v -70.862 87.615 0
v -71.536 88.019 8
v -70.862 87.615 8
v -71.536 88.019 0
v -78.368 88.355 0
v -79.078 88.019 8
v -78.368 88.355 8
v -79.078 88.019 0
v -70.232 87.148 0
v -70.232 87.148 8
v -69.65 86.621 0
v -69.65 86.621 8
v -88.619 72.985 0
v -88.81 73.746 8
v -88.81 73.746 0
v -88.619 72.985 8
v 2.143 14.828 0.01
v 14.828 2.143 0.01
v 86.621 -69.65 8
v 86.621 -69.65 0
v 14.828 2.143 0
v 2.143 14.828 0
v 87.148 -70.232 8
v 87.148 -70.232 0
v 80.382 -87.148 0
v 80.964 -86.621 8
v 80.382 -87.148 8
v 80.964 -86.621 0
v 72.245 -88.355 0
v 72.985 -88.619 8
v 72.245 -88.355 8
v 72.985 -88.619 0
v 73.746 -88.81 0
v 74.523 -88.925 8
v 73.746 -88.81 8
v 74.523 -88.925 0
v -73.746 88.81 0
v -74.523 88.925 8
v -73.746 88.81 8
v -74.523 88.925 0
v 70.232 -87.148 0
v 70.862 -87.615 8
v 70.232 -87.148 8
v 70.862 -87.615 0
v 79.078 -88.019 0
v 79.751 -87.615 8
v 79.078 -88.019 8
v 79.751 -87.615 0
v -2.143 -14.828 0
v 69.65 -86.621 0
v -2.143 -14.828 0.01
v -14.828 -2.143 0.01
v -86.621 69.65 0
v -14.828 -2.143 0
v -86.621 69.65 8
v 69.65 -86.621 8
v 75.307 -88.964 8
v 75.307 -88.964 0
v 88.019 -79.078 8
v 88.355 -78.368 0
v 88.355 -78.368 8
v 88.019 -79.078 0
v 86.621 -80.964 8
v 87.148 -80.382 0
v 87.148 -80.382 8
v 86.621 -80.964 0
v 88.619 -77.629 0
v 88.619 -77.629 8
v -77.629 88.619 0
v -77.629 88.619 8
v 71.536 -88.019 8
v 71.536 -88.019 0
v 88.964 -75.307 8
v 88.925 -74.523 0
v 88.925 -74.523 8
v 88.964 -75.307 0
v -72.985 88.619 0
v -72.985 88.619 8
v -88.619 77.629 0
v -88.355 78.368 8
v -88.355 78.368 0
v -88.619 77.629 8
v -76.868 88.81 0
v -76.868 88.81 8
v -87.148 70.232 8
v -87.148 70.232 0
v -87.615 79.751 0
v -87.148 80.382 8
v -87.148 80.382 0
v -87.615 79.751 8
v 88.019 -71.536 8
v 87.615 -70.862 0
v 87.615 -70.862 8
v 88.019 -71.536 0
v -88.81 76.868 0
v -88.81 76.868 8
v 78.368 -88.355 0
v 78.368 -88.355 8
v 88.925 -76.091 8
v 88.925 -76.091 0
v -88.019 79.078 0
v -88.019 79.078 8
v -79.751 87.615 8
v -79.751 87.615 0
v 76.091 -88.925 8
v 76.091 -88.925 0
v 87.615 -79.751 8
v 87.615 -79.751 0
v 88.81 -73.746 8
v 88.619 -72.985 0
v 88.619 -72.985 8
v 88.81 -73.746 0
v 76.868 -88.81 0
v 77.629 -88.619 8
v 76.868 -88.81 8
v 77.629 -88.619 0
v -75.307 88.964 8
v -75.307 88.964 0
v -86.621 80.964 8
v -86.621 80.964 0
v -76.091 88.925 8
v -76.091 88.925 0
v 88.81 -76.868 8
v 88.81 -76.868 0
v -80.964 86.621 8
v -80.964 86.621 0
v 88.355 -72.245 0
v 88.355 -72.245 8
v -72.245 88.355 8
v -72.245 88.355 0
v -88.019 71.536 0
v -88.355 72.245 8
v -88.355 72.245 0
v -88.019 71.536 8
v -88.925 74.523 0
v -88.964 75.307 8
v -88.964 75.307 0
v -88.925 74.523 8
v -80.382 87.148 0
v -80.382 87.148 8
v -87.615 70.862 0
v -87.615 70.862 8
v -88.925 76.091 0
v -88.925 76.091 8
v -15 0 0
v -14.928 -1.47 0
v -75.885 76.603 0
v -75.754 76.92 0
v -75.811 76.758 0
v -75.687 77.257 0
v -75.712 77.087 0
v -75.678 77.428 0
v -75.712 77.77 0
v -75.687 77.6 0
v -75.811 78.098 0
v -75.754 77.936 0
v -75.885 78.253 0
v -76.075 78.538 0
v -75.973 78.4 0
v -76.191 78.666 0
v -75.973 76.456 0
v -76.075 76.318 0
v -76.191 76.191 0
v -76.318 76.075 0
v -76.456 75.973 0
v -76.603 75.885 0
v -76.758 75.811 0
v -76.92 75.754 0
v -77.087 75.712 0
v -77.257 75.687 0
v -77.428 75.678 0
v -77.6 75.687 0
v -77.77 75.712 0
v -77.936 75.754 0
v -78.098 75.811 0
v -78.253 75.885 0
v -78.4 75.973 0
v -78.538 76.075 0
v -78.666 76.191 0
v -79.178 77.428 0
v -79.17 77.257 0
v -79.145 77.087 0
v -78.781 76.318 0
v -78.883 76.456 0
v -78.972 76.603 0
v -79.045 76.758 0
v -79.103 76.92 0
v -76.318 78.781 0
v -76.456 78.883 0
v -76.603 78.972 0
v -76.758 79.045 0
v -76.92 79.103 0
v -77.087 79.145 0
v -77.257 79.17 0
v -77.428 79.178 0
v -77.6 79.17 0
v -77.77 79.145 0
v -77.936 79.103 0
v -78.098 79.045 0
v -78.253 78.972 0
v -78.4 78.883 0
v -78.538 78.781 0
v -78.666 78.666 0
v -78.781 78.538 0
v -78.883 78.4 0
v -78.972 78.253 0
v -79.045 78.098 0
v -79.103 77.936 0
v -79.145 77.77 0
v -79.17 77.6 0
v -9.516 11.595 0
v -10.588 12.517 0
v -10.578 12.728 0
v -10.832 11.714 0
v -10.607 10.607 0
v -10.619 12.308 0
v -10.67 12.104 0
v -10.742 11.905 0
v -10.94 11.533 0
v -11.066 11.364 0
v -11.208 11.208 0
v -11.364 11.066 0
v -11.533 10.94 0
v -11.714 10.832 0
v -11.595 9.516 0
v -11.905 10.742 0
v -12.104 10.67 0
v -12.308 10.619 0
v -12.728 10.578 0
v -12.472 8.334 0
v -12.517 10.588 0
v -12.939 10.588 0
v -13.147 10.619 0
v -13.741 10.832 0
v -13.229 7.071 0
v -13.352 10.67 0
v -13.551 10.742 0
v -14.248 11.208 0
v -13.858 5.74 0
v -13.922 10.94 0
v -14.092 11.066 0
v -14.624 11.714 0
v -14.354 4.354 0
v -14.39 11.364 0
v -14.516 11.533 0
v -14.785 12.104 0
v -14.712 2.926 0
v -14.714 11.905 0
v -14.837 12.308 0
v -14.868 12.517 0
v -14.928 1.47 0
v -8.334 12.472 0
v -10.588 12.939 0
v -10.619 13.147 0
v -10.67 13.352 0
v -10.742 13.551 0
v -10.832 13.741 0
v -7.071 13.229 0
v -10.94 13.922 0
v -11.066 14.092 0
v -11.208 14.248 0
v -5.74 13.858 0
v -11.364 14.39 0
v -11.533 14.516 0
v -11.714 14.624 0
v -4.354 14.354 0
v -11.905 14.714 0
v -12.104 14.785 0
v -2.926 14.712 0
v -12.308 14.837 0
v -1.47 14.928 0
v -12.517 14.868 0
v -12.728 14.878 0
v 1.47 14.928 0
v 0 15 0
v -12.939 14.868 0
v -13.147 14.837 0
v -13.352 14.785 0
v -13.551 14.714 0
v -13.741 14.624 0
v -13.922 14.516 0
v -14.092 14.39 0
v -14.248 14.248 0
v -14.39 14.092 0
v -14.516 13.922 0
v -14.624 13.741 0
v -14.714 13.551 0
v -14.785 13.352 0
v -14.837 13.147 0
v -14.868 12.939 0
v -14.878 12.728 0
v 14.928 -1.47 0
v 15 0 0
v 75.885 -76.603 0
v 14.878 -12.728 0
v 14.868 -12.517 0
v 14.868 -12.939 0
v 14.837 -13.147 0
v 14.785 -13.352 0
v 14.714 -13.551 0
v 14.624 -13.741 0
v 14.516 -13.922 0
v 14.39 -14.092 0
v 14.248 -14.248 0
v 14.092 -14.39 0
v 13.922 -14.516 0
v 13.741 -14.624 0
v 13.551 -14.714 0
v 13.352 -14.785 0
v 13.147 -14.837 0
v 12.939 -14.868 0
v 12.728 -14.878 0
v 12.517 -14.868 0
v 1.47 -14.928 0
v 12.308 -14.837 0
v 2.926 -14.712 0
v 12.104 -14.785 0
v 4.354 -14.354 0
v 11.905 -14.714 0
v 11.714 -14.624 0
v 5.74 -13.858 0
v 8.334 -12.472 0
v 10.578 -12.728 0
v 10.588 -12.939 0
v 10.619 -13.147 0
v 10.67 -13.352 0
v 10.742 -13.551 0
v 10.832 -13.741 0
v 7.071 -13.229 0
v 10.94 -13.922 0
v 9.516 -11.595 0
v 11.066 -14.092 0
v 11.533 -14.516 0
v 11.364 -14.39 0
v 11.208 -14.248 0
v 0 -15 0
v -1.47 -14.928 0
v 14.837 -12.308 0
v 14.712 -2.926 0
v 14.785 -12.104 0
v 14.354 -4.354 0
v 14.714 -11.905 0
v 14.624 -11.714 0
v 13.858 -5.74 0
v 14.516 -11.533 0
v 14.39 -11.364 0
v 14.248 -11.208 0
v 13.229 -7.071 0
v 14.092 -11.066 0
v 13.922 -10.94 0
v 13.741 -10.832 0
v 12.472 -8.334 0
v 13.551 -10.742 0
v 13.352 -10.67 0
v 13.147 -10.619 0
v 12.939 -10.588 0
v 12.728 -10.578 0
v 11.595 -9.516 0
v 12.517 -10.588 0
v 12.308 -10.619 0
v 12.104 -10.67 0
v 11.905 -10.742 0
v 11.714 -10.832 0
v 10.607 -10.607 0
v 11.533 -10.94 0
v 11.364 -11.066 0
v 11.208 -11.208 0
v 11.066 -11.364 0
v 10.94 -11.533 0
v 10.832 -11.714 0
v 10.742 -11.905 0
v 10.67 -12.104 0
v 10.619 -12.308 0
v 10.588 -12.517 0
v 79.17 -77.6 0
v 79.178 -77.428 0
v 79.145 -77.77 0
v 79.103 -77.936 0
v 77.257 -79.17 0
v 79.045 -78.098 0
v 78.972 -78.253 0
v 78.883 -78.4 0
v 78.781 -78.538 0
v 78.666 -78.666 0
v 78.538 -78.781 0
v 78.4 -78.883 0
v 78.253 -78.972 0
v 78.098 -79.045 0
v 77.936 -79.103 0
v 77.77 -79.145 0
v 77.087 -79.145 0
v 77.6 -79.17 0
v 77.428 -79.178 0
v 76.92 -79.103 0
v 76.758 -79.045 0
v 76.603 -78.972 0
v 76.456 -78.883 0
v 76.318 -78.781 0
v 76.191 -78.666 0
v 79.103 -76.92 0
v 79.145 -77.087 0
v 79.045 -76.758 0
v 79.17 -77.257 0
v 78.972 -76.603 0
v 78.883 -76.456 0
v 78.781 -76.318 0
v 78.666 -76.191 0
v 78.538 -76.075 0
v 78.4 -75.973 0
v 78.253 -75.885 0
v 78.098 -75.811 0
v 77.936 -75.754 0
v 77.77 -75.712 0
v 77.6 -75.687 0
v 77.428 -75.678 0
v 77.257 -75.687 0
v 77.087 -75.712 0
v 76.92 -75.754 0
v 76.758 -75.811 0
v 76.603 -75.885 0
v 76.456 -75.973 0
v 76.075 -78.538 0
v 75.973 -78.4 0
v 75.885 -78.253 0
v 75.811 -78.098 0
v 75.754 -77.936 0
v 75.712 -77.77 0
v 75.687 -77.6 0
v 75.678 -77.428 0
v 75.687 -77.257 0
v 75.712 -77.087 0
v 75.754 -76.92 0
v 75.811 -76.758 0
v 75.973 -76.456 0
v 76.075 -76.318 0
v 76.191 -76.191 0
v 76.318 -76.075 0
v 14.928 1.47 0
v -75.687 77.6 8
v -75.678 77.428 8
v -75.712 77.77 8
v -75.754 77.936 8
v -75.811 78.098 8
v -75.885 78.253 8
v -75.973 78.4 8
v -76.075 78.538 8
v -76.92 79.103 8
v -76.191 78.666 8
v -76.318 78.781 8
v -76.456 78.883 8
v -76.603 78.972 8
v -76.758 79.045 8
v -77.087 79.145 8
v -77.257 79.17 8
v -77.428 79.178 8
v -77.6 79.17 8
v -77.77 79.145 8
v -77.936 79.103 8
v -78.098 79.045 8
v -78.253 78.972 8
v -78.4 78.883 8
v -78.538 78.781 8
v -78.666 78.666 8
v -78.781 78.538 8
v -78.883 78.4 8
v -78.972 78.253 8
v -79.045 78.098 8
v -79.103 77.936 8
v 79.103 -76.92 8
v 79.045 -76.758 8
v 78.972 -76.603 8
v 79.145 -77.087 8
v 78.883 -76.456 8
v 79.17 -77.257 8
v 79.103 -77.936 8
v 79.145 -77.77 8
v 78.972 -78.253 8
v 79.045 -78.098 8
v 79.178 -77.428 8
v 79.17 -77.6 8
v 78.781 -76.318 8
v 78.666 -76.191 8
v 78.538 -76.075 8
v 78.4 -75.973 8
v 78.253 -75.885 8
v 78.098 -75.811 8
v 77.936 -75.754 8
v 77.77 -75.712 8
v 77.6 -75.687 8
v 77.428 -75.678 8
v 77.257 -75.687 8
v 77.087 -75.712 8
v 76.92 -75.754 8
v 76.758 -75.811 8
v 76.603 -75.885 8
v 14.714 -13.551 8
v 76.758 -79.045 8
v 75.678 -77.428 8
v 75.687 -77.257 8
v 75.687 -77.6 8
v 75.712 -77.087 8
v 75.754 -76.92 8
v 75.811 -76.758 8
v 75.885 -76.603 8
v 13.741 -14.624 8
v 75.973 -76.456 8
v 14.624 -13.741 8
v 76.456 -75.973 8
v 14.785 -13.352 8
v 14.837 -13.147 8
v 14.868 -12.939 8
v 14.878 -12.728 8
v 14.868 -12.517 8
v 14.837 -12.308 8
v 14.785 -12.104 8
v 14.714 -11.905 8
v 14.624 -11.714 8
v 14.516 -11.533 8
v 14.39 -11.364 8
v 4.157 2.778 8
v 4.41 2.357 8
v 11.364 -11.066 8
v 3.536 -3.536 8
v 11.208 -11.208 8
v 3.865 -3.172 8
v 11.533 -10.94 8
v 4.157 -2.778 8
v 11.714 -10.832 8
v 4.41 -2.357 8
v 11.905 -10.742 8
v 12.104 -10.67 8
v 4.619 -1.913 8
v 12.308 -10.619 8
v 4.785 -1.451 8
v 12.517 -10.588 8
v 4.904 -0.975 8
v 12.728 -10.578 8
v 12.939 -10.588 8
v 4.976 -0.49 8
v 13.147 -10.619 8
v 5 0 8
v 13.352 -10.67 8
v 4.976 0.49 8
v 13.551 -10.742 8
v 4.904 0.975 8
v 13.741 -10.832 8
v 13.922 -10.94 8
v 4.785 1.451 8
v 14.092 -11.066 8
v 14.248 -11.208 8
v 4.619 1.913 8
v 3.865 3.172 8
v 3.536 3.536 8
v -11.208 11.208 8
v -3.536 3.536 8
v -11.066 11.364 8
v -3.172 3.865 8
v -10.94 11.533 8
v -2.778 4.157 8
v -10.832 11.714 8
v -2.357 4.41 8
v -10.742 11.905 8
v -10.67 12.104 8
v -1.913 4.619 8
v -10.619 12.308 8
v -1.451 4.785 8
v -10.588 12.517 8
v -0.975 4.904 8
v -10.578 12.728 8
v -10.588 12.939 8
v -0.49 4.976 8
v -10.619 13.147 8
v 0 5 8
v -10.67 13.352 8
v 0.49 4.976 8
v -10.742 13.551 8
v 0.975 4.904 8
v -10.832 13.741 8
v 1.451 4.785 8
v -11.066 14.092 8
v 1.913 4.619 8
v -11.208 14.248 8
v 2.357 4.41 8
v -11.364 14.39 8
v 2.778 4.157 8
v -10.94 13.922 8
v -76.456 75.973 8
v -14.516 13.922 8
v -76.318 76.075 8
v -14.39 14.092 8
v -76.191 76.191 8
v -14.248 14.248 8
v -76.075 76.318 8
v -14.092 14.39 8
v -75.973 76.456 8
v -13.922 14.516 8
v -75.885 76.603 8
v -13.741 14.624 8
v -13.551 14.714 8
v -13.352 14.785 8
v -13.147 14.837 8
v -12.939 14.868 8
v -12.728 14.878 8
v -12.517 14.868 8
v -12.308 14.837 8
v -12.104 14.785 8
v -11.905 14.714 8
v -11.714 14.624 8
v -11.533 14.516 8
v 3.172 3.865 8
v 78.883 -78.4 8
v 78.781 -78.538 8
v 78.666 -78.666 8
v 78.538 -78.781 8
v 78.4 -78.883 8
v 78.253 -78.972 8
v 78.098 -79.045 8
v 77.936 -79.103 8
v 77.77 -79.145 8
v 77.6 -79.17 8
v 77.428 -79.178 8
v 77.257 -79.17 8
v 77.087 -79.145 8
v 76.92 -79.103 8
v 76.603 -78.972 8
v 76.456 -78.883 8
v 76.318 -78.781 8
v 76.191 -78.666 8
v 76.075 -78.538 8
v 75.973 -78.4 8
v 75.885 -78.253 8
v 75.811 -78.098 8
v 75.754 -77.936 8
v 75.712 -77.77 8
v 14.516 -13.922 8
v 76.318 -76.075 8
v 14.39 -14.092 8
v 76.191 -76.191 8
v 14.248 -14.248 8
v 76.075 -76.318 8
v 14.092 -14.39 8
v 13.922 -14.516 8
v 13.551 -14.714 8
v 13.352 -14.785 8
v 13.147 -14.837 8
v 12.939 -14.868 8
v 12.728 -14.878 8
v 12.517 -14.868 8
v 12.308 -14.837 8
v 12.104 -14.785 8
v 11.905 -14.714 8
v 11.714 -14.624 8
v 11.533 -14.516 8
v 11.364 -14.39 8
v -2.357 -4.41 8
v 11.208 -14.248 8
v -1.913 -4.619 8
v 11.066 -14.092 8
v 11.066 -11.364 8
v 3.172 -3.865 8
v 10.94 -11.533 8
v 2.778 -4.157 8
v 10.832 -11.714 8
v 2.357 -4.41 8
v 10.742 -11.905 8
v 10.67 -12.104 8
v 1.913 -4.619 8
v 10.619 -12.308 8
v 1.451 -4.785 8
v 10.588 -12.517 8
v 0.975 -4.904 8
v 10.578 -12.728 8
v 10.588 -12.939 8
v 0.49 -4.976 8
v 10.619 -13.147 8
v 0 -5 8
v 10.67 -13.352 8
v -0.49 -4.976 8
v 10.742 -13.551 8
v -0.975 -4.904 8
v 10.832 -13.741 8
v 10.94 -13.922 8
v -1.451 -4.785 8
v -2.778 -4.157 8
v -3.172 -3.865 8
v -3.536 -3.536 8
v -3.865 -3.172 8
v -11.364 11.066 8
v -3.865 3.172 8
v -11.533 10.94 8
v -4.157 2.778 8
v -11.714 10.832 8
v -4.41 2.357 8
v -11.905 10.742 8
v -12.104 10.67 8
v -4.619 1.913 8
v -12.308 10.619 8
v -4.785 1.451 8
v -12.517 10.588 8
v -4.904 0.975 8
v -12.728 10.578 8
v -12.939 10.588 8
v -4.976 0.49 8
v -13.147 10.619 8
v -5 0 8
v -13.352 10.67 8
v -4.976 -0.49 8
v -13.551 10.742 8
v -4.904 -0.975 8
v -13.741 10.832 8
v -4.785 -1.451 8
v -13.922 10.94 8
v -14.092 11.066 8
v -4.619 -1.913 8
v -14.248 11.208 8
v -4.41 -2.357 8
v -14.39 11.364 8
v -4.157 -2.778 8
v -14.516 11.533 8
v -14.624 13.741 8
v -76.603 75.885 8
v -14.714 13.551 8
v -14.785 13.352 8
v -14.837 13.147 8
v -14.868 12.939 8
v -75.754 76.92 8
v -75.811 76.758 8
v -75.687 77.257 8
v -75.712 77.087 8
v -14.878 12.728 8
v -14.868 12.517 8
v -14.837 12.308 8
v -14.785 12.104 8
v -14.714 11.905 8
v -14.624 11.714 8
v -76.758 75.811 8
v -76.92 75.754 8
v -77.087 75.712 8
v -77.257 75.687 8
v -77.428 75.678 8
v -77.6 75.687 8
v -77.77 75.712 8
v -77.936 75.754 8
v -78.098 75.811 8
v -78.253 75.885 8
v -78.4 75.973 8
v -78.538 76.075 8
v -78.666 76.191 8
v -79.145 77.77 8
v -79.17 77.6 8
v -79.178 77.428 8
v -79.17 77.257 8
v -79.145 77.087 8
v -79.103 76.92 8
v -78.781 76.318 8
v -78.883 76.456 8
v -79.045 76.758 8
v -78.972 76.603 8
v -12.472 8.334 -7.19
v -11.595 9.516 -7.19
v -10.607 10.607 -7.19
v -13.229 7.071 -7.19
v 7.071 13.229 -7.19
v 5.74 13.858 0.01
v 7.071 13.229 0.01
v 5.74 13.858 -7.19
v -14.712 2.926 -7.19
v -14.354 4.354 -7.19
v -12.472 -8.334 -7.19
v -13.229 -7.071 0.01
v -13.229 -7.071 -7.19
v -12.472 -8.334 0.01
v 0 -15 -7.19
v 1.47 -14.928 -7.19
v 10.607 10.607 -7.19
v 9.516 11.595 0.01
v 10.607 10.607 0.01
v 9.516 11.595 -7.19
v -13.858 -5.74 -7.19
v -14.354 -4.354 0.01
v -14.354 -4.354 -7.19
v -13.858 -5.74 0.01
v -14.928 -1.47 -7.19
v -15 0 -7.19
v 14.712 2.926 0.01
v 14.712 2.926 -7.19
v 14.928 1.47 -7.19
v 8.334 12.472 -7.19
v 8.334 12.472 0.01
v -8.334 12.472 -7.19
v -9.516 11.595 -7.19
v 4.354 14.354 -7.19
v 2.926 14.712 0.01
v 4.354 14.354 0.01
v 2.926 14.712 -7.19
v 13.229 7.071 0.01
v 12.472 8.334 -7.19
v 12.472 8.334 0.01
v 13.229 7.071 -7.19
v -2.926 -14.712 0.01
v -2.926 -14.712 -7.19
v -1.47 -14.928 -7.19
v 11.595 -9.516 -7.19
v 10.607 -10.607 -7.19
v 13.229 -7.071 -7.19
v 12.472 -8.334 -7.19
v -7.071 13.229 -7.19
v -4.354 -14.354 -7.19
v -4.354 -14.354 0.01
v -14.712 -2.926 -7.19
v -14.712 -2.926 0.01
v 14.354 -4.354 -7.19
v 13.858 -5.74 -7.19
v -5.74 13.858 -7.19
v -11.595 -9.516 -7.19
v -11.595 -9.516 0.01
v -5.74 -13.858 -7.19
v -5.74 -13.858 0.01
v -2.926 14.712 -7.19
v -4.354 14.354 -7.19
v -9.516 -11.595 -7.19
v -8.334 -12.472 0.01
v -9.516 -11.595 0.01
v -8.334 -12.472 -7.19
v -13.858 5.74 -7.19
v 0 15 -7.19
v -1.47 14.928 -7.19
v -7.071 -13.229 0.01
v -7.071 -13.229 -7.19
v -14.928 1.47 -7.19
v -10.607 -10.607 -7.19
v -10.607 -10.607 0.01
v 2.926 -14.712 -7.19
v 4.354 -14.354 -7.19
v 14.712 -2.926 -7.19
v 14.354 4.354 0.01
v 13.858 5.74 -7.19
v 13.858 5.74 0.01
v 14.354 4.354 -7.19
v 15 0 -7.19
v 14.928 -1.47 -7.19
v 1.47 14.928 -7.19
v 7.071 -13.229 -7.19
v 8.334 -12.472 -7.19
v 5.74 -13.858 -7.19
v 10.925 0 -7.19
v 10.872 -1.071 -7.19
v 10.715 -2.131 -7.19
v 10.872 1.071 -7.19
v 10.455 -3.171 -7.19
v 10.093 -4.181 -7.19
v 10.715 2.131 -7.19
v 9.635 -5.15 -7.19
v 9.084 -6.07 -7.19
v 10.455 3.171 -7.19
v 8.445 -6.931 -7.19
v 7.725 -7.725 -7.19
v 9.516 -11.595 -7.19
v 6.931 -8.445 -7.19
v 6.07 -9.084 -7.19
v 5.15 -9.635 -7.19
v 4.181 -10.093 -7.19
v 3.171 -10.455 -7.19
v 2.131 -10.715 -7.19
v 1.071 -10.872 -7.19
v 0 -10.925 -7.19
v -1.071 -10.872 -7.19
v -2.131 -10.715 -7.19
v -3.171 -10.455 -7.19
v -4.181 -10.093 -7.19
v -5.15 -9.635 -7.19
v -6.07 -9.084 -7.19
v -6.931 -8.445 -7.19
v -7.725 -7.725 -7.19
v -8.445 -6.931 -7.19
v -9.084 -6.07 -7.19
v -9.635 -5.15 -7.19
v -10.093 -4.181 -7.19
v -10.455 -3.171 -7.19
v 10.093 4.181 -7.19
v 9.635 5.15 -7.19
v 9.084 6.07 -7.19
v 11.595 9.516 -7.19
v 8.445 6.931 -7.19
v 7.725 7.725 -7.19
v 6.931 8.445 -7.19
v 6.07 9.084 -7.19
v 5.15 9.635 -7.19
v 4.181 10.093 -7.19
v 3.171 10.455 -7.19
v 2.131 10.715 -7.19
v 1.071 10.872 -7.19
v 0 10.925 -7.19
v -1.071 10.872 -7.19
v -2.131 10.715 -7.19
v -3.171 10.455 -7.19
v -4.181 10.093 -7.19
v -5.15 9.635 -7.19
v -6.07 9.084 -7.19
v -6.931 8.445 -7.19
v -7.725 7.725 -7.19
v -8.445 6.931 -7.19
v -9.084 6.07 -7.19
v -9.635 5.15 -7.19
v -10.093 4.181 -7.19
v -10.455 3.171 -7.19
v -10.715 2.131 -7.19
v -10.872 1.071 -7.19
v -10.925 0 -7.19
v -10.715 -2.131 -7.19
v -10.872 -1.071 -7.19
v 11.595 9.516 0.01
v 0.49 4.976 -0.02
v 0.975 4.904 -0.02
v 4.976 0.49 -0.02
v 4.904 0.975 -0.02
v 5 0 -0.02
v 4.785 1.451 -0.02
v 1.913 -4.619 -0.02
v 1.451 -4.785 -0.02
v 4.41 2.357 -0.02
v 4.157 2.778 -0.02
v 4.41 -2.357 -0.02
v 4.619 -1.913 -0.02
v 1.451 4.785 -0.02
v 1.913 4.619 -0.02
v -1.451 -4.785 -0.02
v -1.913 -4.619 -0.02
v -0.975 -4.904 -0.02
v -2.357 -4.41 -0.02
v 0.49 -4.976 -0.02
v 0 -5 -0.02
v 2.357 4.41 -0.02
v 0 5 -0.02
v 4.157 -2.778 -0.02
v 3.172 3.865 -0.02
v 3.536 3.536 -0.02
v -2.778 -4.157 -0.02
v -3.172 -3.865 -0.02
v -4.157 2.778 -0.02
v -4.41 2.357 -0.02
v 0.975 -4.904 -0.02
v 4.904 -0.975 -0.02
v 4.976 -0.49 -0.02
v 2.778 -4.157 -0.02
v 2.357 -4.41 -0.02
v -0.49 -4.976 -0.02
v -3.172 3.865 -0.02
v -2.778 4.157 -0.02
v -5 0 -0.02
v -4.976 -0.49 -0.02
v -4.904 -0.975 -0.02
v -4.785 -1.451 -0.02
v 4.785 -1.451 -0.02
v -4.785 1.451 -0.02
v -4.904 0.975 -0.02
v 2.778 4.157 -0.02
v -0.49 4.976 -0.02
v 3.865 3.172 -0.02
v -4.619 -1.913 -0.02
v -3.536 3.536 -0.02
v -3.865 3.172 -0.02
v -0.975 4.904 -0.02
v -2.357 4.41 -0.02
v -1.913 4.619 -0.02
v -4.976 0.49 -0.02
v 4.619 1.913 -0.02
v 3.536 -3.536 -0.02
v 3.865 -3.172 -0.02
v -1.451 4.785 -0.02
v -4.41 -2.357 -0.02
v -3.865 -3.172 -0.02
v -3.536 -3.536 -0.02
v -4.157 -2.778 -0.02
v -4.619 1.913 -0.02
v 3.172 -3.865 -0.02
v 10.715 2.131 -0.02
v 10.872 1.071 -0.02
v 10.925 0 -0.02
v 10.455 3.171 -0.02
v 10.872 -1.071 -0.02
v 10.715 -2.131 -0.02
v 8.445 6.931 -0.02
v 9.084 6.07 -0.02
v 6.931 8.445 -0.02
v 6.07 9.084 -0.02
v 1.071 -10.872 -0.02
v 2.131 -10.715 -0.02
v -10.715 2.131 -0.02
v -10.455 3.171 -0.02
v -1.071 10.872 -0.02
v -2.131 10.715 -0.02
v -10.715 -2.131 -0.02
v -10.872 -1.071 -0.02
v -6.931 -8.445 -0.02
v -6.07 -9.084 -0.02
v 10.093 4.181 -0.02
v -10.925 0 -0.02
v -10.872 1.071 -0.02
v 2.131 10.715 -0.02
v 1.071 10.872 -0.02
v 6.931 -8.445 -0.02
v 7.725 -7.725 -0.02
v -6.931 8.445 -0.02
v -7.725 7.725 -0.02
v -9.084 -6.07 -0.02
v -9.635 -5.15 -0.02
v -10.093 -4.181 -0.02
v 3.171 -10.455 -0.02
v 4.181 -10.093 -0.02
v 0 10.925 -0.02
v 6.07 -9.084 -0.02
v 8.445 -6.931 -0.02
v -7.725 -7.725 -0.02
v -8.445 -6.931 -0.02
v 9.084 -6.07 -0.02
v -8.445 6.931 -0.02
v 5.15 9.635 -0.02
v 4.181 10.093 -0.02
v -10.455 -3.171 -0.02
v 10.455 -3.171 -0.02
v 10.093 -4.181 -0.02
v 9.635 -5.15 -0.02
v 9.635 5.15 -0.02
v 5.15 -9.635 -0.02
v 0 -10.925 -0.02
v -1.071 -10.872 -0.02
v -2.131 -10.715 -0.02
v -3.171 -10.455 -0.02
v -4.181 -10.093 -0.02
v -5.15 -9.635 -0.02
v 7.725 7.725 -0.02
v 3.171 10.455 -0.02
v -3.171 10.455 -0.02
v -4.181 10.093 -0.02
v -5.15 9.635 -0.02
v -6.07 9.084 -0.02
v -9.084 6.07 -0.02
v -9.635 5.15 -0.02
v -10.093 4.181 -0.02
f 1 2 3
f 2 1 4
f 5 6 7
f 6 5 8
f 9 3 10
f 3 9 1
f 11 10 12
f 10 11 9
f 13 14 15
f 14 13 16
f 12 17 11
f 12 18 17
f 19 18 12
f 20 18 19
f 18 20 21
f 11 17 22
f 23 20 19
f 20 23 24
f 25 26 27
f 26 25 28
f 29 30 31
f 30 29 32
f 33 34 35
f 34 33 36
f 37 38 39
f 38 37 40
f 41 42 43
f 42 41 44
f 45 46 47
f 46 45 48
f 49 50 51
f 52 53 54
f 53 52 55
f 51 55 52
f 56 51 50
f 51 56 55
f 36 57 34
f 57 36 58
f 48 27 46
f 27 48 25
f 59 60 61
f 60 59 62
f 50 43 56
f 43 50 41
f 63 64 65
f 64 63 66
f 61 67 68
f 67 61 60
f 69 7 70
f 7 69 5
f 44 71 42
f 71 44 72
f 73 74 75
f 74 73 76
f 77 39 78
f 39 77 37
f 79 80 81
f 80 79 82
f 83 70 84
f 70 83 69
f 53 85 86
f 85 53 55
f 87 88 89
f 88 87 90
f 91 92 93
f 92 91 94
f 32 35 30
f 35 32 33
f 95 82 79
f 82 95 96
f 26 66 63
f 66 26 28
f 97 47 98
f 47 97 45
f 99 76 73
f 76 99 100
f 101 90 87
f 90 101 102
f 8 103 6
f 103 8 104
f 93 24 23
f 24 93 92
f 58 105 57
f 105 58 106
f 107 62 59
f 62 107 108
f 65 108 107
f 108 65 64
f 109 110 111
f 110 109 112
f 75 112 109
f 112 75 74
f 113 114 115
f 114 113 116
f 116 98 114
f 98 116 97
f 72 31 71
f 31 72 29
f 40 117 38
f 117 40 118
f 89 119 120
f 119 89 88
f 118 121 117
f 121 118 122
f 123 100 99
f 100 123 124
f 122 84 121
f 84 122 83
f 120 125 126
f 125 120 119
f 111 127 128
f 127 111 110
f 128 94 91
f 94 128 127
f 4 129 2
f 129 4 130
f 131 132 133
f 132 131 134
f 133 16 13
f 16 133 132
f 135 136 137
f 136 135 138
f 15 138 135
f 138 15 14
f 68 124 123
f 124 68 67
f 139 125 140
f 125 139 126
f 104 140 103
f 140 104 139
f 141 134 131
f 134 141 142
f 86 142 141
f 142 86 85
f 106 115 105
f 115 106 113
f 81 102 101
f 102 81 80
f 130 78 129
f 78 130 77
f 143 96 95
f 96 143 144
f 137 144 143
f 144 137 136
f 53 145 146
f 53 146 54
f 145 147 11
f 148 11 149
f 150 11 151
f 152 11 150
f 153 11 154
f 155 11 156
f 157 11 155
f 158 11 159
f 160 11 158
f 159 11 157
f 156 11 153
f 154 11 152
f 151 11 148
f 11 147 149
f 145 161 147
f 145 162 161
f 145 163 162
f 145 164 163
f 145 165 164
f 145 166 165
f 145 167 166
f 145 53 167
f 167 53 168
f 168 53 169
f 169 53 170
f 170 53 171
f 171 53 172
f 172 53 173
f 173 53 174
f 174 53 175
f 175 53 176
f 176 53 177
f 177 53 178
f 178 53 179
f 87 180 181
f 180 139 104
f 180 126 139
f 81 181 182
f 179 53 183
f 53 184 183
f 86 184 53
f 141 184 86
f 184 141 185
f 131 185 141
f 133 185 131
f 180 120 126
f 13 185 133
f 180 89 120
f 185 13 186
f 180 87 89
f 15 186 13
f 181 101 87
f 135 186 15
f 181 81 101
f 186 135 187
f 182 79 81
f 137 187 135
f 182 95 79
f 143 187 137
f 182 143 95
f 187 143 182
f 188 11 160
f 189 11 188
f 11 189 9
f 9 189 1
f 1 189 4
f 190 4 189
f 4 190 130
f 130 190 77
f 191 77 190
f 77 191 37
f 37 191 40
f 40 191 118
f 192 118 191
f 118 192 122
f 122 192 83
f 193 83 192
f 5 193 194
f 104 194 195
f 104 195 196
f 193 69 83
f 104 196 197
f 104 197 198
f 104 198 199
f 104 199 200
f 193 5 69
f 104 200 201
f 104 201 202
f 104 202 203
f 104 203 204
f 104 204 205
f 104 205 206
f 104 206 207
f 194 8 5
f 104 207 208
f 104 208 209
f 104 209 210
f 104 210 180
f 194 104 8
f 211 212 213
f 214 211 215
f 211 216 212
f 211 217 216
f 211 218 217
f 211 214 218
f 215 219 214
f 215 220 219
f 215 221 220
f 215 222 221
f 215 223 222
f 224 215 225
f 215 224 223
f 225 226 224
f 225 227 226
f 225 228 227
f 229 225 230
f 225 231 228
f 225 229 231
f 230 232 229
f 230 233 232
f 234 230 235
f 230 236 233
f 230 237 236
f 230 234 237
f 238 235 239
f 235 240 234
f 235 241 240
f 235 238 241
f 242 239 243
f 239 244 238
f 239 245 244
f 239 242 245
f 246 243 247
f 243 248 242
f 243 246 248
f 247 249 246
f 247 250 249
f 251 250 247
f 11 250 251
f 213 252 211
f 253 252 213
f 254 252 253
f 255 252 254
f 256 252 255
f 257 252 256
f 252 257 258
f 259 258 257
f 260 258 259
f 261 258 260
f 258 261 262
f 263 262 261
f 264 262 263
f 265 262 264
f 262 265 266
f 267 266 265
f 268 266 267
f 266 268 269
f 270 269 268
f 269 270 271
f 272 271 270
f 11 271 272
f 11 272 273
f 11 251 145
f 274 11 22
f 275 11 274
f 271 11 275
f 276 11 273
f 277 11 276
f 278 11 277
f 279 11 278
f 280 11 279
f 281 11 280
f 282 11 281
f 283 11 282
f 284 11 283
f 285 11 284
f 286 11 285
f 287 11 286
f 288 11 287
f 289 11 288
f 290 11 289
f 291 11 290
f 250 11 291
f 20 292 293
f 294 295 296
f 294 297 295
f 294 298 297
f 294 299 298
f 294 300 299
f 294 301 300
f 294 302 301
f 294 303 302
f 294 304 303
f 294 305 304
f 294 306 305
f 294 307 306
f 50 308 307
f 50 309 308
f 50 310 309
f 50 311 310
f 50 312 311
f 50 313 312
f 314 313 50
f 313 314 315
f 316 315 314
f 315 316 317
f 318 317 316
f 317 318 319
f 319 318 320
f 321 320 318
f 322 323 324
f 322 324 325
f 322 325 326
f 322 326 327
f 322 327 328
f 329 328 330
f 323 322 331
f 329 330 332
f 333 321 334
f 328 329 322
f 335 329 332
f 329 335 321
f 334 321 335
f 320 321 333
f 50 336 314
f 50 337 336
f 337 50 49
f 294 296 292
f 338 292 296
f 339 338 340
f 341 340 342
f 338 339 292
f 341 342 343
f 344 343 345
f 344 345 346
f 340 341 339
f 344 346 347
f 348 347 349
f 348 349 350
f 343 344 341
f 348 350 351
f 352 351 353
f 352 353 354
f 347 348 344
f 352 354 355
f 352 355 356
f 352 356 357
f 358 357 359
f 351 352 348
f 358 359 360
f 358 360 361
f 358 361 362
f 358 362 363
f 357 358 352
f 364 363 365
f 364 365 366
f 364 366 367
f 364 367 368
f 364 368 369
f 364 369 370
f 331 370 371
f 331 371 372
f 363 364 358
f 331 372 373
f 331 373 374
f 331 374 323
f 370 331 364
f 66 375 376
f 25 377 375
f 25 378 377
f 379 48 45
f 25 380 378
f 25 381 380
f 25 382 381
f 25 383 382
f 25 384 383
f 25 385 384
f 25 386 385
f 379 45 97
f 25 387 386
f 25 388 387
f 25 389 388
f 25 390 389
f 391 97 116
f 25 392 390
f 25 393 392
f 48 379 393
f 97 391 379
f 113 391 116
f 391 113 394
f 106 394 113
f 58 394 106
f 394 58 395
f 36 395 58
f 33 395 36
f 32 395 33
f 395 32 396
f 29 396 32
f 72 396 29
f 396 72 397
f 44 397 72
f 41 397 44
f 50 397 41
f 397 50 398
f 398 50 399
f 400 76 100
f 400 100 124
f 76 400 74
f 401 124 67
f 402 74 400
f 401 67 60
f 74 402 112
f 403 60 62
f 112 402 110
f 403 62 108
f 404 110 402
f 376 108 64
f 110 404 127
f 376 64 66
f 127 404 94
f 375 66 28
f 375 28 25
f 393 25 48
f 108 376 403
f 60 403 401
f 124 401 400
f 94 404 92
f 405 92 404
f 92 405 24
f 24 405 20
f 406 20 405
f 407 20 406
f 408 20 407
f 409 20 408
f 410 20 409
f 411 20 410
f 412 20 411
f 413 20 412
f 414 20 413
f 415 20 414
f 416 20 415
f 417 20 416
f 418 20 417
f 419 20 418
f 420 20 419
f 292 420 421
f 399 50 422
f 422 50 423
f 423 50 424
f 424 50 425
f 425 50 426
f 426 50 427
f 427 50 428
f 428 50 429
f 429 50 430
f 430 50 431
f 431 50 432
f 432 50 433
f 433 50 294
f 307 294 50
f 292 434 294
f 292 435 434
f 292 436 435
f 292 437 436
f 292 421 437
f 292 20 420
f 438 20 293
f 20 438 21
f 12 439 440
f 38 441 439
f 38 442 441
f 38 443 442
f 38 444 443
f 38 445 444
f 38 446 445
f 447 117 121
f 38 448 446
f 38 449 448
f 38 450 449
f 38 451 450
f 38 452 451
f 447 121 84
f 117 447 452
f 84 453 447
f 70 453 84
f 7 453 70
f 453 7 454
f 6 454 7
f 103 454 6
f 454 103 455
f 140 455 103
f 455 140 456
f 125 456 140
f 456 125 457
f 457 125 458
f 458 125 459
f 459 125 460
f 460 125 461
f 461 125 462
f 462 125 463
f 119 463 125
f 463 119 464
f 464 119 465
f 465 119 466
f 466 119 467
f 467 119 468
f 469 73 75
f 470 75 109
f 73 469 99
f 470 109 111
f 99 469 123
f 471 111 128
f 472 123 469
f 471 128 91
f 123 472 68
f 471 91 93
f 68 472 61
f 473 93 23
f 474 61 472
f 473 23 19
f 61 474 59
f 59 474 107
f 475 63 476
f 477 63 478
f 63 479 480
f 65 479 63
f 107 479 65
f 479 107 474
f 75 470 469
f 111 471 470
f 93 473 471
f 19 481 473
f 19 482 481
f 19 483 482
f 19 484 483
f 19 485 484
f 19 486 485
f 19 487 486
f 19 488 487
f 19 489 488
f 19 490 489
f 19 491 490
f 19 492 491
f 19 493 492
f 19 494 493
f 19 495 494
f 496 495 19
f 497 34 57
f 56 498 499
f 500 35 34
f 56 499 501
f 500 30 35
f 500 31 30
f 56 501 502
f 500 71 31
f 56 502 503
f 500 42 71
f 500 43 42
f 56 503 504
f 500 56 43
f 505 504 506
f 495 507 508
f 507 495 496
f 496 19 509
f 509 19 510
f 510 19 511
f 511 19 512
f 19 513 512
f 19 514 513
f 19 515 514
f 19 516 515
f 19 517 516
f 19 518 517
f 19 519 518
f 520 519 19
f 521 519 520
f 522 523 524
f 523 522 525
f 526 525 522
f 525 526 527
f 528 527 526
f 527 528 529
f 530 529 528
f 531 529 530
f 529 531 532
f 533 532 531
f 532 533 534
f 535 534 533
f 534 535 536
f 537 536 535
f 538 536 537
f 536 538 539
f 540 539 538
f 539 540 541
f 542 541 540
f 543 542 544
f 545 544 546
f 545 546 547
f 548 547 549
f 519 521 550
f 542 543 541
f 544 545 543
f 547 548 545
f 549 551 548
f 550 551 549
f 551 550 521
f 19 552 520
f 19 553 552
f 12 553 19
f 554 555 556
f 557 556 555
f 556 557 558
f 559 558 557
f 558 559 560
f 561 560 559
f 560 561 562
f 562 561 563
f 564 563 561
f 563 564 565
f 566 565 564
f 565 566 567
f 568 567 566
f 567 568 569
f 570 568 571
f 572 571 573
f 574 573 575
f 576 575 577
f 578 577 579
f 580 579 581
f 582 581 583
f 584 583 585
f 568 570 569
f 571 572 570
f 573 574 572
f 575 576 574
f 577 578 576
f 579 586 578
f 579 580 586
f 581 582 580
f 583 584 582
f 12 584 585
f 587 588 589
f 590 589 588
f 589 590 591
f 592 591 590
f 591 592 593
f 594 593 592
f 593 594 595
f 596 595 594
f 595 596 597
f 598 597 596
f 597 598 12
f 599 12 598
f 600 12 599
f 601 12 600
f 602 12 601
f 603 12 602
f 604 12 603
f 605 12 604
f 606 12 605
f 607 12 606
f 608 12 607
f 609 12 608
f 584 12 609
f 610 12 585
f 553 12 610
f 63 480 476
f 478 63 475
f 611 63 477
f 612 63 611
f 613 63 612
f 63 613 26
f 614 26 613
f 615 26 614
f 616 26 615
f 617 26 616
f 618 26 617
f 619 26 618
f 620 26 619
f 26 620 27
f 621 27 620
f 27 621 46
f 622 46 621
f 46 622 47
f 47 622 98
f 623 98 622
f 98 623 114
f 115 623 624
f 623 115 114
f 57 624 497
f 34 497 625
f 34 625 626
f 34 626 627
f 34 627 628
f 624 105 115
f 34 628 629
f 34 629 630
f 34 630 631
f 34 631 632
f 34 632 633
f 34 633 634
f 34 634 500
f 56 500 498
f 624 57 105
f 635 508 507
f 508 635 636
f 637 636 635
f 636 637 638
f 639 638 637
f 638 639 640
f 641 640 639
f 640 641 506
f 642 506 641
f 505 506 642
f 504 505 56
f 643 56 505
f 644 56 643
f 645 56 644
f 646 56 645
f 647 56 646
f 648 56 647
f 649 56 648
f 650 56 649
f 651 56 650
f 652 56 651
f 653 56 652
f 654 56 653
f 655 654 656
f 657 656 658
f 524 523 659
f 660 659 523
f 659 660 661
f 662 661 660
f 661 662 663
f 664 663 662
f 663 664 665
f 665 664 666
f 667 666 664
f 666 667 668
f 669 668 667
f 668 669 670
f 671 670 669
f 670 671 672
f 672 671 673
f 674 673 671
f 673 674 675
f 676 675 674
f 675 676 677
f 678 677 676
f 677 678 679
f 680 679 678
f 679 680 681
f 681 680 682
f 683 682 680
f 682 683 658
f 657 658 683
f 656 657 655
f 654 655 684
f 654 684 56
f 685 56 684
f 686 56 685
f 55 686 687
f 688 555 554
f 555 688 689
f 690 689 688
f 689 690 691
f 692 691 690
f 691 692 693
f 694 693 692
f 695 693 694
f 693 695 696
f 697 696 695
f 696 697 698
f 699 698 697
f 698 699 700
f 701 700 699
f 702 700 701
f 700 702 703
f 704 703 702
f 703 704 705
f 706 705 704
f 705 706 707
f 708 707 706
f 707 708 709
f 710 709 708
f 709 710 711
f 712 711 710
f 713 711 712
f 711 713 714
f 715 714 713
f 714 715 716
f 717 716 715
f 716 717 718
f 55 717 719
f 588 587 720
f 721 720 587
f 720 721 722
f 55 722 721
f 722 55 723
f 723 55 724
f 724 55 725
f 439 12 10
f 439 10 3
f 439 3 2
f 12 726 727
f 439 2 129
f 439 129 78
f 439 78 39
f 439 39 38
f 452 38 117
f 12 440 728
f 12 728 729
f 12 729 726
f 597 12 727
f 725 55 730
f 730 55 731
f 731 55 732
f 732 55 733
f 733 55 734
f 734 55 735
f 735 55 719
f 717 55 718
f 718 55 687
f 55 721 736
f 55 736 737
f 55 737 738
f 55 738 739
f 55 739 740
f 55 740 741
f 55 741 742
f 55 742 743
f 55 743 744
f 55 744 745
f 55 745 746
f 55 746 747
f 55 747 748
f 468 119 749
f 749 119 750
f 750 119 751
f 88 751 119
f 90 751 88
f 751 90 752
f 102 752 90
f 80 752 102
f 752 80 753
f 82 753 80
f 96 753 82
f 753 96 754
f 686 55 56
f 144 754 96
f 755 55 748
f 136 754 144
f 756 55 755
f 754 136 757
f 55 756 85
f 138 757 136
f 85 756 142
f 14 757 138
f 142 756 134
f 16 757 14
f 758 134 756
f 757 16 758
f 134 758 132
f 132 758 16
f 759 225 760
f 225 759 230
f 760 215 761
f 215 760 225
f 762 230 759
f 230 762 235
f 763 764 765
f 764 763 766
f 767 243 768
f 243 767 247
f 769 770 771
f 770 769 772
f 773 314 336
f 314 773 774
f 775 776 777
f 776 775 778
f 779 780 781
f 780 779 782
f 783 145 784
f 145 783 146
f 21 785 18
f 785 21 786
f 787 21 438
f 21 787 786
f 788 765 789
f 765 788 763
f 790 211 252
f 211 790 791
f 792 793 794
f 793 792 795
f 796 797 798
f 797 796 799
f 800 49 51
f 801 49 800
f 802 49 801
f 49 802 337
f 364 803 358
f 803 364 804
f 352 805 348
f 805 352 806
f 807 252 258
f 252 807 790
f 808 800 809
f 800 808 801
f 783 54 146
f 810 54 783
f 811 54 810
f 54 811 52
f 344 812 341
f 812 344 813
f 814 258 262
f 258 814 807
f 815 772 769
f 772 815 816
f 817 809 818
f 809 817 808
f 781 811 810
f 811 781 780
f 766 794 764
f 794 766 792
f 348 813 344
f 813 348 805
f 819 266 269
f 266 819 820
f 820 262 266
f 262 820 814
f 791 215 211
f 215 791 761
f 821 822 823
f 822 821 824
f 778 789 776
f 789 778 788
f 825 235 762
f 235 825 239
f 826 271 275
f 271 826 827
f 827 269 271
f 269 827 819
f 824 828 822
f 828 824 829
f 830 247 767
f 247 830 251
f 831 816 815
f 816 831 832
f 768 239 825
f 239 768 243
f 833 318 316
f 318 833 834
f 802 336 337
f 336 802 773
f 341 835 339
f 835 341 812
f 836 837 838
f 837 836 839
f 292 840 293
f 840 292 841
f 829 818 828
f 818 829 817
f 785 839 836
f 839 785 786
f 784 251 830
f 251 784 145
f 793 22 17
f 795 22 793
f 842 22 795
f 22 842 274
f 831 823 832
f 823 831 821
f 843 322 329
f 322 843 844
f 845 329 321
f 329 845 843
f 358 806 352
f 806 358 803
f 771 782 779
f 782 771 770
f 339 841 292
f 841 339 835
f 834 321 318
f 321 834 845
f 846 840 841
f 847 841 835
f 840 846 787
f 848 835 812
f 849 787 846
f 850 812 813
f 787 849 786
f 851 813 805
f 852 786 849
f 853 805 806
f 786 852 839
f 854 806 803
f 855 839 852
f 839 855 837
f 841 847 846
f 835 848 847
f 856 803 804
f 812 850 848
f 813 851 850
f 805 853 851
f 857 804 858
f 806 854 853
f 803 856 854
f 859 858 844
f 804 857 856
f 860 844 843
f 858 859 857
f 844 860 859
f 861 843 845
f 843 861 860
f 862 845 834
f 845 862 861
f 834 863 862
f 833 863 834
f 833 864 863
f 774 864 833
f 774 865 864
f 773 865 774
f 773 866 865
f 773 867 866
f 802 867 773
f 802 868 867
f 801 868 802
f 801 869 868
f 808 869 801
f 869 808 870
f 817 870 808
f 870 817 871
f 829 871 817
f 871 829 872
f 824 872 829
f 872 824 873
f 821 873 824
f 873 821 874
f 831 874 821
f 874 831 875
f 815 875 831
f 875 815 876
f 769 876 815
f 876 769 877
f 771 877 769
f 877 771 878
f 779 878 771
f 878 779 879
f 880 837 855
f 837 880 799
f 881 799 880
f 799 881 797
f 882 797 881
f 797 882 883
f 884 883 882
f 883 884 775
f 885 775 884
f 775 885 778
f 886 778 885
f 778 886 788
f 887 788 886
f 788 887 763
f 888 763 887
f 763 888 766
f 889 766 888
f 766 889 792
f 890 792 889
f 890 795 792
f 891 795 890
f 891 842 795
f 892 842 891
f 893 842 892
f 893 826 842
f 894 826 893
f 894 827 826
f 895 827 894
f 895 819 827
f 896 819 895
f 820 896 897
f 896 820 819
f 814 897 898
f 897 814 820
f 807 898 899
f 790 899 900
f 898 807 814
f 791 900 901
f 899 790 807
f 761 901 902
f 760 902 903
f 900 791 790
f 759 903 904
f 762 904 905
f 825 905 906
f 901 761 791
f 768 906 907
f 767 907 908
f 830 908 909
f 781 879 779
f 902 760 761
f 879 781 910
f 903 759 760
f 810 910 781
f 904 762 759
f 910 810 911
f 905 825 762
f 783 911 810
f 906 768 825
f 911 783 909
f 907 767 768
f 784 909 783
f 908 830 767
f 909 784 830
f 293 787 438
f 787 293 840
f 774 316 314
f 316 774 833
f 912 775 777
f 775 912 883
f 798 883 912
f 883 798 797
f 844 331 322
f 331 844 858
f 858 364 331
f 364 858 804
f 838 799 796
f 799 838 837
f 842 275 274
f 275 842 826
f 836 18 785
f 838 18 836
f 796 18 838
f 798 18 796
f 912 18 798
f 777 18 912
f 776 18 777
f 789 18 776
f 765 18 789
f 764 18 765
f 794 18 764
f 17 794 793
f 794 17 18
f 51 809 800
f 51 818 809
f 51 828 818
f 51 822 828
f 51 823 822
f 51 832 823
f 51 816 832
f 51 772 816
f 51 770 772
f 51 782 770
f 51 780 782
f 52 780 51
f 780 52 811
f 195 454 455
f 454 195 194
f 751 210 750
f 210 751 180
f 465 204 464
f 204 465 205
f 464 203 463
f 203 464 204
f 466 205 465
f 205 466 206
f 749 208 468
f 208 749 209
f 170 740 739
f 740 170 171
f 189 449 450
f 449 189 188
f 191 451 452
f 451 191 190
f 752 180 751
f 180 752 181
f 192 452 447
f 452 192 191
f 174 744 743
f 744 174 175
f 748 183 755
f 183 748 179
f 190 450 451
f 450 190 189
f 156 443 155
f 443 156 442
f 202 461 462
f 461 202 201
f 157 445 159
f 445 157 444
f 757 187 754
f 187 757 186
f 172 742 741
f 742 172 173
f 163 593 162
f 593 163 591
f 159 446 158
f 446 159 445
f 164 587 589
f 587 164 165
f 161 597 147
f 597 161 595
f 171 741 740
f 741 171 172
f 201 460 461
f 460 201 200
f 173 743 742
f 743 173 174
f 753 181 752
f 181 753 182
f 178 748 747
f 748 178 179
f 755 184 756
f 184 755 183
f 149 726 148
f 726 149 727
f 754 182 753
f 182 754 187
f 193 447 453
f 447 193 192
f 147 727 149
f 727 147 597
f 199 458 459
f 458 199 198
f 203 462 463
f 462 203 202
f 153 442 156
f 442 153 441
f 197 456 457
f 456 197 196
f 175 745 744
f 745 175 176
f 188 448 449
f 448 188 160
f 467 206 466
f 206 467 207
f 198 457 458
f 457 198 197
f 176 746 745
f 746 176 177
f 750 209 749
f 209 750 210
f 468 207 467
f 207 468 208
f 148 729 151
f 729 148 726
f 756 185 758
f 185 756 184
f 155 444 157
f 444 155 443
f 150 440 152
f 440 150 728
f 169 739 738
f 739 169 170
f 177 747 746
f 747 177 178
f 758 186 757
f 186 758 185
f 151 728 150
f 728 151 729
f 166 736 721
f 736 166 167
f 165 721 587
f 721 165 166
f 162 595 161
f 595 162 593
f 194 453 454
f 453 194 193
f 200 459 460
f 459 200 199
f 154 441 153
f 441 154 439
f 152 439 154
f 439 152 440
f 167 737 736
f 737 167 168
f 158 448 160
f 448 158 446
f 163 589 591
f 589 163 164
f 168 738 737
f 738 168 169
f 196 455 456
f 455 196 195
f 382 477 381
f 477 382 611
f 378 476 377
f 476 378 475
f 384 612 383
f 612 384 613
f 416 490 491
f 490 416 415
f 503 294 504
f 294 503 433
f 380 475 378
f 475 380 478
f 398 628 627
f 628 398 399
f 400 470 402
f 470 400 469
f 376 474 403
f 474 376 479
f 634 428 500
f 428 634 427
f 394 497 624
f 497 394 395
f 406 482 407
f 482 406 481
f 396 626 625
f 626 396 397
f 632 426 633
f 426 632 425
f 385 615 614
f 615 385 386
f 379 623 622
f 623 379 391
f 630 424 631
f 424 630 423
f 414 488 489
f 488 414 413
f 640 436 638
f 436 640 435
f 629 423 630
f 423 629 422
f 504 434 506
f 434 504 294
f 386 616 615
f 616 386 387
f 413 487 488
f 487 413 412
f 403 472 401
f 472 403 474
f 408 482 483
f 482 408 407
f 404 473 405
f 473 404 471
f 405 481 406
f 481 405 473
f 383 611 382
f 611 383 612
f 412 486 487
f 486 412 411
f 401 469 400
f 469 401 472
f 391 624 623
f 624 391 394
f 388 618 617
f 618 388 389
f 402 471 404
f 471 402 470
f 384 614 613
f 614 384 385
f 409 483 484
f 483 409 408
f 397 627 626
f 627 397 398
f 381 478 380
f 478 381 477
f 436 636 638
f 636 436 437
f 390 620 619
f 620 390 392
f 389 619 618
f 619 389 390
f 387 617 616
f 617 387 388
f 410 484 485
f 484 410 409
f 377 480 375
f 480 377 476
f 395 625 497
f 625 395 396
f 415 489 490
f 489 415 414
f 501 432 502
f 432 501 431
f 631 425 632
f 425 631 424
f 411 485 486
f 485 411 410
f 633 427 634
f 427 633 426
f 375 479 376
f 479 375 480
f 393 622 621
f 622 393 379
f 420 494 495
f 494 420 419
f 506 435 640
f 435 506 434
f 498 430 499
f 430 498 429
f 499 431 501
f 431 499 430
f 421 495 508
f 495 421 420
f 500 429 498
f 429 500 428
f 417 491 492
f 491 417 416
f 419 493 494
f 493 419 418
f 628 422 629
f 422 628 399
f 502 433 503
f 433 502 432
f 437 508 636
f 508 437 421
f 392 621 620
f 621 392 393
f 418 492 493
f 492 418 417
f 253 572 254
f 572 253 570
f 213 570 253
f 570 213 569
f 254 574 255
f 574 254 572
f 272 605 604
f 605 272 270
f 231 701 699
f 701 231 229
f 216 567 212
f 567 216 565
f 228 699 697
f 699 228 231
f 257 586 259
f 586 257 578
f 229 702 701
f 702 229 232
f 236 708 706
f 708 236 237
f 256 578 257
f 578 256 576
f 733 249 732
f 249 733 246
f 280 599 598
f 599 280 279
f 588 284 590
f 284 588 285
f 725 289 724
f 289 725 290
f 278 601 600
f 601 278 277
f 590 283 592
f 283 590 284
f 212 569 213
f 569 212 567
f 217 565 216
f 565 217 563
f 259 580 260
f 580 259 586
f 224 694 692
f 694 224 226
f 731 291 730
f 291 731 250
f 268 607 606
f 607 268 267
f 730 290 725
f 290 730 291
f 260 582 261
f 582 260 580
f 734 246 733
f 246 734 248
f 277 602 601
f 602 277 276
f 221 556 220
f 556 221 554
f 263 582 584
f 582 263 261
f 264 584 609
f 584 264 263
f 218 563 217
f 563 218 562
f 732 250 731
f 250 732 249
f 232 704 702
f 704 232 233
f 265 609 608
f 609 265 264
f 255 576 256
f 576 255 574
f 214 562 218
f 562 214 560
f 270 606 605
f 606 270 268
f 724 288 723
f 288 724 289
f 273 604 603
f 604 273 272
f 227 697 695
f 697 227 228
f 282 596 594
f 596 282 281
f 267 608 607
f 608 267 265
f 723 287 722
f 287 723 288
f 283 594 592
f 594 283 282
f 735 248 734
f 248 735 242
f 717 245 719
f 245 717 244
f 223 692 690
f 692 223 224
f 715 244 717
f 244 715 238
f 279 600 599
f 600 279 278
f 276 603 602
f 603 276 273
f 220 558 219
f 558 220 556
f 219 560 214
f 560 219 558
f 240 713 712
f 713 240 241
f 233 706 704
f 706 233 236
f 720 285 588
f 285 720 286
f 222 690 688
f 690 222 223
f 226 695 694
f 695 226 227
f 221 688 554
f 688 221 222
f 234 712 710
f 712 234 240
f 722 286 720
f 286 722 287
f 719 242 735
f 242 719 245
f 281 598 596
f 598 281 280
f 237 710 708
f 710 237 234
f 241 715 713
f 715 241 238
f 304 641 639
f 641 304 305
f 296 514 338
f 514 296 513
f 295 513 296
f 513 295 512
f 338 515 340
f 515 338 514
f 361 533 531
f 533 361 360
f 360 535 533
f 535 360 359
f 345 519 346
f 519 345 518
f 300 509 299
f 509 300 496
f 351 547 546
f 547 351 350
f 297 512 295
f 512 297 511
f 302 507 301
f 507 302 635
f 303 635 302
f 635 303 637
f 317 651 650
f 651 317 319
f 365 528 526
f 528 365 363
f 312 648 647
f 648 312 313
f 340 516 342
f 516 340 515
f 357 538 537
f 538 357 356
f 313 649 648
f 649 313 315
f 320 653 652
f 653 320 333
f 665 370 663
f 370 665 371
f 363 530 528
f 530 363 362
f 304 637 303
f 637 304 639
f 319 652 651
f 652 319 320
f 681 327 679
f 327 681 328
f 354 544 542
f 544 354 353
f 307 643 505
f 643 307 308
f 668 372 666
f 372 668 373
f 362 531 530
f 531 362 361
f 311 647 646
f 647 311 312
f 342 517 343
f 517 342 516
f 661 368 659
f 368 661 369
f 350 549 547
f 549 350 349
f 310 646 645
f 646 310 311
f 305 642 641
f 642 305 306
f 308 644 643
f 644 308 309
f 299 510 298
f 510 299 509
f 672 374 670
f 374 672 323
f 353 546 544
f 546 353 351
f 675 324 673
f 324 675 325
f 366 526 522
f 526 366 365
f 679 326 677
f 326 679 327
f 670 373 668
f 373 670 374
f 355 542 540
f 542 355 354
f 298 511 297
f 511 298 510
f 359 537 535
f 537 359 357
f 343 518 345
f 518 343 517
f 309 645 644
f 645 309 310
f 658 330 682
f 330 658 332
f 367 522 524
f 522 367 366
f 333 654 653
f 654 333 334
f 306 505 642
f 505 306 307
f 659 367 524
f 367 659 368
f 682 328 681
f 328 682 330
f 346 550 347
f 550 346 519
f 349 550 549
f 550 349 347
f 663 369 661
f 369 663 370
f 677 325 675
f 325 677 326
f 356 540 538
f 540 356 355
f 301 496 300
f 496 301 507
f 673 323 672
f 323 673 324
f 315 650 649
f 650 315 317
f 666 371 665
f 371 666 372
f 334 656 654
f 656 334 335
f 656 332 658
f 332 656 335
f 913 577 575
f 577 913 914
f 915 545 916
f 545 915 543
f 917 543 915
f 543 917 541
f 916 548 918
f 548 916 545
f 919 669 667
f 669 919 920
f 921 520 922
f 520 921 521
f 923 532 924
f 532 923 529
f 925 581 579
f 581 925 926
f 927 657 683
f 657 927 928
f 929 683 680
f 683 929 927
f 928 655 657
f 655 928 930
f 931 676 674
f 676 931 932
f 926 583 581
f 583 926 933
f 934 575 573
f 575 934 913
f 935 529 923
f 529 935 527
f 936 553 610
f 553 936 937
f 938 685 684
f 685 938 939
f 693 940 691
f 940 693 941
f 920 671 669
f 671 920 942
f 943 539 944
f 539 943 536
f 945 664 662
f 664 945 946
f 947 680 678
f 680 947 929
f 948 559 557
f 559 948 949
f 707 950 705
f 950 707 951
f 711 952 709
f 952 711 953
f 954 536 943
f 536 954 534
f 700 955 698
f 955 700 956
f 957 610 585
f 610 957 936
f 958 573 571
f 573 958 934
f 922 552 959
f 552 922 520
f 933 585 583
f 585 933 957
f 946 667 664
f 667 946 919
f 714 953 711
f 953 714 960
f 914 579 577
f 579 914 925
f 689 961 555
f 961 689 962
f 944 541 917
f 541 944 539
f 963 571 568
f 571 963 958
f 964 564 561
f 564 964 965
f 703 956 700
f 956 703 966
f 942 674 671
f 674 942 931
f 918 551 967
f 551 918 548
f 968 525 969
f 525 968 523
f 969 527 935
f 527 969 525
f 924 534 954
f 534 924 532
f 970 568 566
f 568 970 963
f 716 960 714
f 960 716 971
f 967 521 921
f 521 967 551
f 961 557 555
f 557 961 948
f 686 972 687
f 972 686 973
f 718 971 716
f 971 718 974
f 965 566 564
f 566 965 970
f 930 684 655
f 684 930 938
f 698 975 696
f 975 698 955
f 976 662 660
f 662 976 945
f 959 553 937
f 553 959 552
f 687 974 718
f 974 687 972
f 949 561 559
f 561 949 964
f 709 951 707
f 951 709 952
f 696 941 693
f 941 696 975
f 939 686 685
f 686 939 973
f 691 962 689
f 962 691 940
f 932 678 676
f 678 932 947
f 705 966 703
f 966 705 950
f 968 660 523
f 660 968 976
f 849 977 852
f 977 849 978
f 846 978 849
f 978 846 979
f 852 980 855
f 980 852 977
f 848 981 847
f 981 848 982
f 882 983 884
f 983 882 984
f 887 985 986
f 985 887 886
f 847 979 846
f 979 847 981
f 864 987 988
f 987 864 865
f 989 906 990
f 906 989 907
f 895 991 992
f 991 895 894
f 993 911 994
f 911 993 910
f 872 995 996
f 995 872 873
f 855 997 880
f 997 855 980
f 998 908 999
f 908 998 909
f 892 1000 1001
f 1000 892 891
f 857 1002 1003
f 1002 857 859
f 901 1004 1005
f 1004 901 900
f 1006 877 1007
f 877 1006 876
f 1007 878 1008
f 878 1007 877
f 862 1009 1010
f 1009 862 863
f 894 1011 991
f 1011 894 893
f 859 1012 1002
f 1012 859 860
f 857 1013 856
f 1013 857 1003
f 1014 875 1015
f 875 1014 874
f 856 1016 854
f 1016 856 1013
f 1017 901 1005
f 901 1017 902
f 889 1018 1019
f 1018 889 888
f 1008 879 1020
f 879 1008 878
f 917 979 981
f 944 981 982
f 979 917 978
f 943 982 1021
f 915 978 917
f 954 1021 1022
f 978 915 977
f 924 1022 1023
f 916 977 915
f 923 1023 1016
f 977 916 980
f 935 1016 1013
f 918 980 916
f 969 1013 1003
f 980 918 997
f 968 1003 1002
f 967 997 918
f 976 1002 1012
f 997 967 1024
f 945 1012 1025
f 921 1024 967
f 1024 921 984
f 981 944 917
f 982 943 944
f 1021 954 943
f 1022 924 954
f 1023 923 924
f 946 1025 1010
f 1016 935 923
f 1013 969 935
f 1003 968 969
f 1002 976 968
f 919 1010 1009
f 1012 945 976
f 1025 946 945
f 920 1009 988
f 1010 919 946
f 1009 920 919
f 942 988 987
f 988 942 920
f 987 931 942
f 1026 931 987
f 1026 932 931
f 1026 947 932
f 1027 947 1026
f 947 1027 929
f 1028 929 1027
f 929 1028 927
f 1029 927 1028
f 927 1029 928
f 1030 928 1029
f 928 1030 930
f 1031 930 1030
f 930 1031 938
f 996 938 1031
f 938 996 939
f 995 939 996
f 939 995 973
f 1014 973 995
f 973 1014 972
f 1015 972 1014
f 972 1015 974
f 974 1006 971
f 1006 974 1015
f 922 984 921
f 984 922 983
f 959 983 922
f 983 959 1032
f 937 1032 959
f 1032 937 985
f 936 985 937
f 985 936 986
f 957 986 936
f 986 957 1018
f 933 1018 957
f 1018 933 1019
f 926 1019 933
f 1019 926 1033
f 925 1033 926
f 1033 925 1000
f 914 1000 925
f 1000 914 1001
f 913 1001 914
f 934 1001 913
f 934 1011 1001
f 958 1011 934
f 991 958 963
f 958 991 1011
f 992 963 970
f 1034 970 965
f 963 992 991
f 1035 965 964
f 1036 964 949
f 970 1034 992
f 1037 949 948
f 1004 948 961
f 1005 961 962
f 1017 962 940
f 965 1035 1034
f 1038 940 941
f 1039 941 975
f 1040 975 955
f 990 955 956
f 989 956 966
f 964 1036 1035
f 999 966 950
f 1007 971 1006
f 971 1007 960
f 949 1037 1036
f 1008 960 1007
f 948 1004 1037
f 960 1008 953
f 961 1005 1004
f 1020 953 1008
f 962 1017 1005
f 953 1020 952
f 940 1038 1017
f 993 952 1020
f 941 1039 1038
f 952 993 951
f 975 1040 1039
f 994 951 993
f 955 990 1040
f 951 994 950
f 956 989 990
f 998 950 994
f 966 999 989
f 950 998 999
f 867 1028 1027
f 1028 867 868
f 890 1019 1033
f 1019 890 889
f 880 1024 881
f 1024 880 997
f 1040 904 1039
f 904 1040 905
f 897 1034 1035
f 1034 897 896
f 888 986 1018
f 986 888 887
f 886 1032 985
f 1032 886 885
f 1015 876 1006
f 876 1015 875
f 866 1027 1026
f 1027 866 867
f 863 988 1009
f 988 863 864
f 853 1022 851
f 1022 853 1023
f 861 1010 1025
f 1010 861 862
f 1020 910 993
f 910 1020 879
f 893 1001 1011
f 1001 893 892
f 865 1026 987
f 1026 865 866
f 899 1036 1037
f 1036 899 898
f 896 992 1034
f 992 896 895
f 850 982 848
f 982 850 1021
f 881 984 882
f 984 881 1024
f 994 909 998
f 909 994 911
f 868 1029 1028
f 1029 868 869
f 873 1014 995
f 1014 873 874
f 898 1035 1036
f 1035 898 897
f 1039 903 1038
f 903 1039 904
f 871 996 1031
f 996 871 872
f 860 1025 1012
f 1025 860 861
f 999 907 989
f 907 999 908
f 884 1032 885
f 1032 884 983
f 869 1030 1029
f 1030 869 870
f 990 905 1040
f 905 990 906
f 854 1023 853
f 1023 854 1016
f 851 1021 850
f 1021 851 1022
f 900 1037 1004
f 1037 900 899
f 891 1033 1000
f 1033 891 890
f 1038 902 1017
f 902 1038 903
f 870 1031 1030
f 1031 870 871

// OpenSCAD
// Gen-CJ — rear BEARING BRIDGE (bar endbell, 2026-10-10): a 608 boss on a 24 mm wide bar that spans the
// two frame rods at 135 deg and 135+180 deg (R = flange_bolt_r). The front bridge uses the rods at 45/225 deg, the rear
// bridge the rods at 135/315 deg, so the two bridges cross at 90 deg and the stator is held at 4 points.
// A bar instead of a full disc is what lets this big-ring kit fit ONE 410 mm plate. Print flat face DOWN (boss up, no supports).
// Brace holes (temporary M4 jack rods, R = brace_r) sit on the bar axis.
include <parameters.scad>;
$fn = 64;
bar_w = 24;
bar_len = 2 * (flange_bolt_r + 9);
module bar_2d() { offset(r=8) offset(delta=-8) square([bar_len, bar_w], center=true); }
difference() {
    rotate([0, 0, 135]) union() {
        linear_extrude(endbell_thick) bar_2d();
        translate([0, 0, -bearing_h + 0.01]) cylinder(d=30, h=bearing_h);
    }
    translate([0, 0, -bearing_h - 0.1]) cylinder(d=endbell_shaft_clear, h=50);
    translate([0, 0, -bearing_h - 0.02]) cylinder(d=bearing_d, h=bearing_h);
    for (s = [0, 180]) rotate([0, 0, 135 + s]) translate([flange_bolt_r, 0, -20]) cylinder(d=m3_clear, h=60);
    for (a = brace_angles) translate([brace_r*cos(a), brace_r*sin(a), -20]) cylinder(d=brace_d, h=50);
}
